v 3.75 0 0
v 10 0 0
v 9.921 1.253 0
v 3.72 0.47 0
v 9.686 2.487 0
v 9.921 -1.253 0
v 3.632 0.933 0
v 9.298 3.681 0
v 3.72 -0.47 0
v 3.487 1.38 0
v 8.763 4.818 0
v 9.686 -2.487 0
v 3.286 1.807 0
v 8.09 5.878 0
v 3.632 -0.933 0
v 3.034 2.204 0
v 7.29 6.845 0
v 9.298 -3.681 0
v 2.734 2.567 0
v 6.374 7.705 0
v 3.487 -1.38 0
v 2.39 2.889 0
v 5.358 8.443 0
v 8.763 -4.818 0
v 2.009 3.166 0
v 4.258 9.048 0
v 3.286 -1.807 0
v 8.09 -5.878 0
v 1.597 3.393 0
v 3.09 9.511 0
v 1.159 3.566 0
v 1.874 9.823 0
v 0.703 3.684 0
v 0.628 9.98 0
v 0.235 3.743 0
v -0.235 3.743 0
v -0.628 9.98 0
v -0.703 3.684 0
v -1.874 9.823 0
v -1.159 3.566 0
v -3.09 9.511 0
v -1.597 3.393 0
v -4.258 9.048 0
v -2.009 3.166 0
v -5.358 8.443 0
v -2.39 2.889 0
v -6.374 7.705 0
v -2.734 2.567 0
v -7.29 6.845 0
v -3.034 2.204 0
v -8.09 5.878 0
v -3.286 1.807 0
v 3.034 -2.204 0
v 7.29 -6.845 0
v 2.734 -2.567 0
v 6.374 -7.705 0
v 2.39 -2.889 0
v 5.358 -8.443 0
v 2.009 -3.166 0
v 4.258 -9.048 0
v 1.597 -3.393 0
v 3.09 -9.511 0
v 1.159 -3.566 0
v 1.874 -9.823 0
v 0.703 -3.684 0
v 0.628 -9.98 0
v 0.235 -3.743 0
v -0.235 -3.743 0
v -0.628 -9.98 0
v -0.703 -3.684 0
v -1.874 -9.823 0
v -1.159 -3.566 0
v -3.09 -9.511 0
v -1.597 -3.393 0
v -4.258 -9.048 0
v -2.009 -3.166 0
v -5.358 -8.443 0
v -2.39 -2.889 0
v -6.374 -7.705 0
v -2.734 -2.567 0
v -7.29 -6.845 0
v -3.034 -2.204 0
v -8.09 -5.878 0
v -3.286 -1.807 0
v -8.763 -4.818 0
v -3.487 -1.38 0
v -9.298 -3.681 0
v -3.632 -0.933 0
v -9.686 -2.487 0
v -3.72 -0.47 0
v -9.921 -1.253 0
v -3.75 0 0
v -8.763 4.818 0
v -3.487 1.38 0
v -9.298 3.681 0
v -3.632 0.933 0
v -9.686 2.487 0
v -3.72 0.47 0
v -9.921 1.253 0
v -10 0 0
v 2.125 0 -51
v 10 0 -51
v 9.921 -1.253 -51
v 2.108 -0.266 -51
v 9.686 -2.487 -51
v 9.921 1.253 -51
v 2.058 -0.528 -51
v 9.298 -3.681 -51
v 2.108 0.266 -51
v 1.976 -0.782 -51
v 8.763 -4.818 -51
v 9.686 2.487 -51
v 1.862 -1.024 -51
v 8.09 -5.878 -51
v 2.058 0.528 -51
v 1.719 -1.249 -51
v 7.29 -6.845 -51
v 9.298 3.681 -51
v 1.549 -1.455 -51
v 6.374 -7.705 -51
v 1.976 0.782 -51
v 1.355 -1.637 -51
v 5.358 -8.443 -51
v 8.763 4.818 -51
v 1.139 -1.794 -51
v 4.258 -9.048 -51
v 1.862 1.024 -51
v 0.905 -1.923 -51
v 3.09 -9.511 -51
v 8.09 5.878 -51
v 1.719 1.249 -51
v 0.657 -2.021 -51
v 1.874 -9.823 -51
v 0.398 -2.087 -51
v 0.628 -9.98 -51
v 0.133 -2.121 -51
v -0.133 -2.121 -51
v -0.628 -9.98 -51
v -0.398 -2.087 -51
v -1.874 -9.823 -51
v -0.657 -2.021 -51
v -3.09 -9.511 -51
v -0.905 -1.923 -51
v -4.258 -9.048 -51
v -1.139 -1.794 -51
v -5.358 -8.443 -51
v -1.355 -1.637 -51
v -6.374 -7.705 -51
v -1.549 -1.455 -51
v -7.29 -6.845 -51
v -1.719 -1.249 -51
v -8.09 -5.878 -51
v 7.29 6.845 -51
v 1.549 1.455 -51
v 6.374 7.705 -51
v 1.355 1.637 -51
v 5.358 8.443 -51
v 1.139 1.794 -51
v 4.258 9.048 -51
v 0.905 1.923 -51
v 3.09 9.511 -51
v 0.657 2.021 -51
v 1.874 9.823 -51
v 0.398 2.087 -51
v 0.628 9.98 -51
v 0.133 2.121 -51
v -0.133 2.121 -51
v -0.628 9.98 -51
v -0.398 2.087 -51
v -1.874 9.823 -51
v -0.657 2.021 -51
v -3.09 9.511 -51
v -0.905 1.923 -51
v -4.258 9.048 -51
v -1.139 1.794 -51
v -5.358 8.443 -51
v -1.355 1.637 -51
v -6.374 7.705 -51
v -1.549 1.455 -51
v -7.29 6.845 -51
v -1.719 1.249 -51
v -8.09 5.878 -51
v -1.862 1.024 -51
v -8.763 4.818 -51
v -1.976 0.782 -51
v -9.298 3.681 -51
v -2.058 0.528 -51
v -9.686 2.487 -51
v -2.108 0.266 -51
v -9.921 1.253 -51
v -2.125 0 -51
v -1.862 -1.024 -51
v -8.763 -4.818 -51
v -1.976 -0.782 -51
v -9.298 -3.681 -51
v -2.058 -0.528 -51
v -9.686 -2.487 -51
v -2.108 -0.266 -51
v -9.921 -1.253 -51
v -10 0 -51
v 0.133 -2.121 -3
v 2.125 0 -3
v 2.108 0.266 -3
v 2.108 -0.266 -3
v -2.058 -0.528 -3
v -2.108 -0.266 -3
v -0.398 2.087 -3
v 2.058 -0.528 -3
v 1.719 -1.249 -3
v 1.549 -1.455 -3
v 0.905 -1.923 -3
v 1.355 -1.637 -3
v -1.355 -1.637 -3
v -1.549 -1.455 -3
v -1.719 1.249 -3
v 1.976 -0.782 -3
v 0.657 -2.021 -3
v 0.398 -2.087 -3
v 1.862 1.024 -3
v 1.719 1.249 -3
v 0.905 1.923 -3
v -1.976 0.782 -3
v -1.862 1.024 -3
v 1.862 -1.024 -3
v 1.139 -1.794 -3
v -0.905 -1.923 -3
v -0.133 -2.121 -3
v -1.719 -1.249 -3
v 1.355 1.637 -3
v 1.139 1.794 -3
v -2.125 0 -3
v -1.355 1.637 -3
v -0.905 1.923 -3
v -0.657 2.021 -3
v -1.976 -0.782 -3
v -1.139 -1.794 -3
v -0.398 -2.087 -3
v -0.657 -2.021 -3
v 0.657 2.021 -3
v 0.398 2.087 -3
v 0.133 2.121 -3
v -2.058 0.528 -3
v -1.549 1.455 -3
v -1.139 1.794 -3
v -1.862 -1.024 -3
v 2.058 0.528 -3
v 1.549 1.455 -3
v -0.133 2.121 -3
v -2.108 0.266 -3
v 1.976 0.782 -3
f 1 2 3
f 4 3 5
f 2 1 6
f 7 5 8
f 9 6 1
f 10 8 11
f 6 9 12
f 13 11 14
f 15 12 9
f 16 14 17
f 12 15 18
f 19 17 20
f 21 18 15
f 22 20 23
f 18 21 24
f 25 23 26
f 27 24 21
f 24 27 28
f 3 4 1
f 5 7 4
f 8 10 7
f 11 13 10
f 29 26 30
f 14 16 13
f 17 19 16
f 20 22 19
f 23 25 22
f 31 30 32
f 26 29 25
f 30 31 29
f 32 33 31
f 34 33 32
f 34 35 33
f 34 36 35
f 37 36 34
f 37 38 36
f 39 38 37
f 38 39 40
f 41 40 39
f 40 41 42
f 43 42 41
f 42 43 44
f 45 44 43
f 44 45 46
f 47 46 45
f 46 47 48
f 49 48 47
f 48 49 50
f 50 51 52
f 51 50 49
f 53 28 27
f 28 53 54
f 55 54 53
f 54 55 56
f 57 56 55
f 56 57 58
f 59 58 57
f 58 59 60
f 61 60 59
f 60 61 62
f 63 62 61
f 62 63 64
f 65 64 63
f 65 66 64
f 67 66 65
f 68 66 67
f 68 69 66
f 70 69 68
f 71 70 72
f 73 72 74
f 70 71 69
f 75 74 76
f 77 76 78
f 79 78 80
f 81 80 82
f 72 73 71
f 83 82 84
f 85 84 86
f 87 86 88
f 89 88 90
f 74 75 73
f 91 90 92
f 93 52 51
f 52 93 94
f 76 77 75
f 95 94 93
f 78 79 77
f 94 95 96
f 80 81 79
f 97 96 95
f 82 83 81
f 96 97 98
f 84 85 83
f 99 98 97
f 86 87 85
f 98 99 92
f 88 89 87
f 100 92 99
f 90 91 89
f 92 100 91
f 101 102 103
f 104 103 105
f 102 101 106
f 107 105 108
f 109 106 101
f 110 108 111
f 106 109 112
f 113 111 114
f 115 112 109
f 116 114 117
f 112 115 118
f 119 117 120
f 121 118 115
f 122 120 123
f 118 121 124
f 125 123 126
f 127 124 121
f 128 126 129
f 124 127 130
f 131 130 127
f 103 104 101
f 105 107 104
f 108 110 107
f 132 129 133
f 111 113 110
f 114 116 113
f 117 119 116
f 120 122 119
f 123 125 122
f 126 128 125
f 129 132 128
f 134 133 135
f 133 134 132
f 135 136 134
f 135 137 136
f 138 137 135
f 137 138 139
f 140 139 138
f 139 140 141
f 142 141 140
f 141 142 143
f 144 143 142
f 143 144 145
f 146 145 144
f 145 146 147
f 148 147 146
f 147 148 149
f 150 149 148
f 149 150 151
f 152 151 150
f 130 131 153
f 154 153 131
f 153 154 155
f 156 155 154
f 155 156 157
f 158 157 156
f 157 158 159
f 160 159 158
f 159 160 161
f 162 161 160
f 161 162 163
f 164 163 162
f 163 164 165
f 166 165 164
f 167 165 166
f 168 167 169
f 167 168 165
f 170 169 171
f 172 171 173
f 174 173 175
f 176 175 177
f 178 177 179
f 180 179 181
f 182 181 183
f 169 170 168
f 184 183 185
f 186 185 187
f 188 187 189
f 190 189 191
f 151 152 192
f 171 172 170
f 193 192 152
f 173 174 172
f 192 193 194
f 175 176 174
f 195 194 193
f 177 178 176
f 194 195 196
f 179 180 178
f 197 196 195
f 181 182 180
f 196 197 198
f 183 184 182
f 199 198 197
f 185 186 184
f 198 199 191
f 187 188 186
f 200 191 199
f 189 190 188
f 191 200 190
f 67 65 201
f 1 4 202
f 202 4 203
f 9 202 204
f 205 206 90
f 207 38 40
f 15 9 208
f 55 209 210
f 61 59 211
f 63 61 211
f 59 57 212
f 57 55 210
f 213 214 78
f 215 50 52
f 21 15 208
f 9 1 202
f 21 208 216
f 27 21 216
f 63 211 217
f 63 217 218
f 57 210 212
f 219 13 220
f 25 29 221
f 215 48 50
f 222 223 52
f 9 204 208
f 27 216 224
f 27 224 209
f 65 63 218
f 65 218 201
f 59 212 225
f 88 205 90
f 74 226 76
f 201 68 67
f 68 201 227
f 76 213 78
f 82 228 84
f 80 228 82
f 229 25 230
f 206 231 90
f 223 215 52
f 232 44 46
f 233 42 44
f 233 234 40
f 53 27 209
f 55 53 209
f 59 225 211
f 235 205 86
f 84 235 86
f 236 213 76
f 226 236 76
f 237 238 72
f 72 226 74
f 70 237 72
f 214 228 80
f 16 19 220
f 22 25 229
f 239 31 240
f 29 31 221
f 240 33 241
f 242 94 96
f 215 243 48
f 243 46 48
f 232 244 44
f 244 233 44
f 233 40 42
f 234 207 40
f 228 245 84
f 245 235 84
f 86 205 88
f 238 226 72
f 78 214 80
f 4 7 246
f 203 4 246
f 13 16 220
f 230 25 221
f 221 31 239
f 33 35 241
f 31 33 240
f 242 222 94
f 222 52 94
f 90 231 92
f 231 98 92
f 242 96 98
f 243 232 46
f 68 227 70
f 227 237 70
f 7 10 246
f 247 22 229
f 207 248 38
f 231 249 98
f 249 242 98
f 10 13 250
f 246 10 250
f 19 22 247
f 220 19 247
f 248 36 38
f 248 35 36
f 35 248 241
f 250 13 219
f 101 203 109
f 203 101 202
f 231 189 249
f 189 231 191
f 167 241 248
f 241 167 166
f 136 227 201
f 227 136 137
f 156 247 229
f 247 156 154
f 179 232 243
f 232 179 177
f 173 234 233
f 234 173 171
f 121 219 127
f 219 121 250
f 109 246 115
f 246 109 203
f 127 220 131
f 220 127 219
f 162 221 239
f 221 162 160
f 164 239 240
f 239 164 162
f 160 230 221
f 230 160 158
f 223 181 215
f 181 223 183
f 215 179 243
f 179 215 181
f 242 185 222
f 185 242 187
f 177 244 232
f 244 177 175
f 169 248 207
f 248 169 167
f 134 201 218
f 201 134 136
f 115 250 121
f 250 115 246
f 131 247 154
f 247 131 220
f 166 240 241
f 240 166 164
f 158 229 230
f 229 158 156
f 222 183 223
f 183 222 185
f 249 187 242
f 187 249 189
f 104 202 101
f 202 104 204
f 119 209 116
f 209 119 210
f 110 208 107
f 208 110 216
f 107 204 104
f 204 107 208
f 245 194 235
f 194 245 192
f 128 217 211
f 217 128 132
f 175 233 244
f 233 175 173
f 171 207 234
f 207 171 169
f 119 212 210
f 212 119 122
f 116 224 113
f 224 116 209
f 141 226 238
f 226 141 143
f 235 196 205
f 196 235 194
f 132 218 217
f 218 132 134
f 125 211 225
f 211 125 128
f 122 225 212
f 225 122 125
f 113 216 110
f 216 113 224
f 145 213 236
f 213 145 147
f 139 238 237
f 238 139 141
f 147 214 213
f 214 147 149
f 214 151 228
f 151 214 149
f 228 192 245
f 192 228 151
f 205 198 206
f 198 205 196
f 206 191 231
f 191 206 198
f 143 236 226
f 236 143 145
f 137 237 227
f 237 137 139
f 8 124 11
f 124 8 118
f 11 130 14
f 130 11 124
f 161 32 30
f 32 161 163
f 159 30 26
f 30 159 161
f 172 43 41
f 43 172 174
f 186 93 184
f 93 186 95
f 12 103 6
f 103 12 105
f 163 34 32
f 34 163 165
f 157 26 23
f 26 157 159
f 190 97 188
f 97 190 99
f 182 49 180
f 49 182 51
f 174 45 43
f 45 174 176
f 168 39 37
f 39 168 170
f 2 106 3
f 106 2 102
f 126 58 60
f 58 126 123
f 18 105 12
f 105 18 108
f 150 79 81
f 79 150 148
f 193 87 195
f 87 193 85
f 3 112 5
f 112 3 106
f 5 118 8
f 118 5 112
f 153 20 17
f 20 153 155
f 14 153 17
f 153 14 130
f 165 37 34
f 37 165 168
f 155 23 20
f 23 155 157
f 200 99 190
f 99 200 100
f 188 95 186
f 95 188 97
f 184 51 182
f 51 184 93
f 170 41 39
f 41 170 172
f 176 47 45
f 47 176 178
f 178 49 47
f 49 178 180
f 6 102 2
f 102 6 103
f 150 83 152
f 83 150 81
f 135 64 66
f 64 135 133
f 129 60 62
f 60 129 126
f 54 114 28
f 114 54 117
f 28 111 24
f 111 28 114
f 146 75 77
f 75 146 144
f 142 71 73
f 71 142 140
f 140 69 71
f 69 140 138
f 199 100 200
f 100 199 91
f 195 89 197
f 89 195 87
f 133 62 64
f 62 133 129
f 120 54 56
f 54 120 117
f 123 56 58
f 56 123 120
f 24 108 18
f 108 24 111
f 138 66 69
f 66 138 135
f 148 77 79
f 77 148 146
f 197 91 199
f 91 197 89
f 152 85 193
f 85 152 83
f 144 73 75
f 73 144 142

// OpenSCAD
$fn = 50;


difference() {
	union() {
		translate(v = [0, 0, -51.0000000000]) {
			cylinder(h = 51, r = 10.0000000000);
		}
	}
	union() {
		translate(v = [0, 0, 0]) {
			rotate(a = [0, 0, 0]) {
				difference() {
					union() {
						#translate(v = [0, 0, -51.0000000000]) {
							cylinder(h = 51, r = 2.0000000000);
						}
						#translate(v = [0, 0, -3]) {
							cylinder(h = 3, r = 10.0000000000, r1 = 2.1250000000, r2 = 3.7500000000);
						}
						#translate(v = [0, 0, -51.0000000000]) {
							cylinder(h = 51, r = 2.1250000000);
						}
						#translate(v = [0, 0, -51.0000000000]) {
							cylinder(h = 51, r = 2.0000000000);
						}
					}
					union();
				}
			}
		}
	}
}
